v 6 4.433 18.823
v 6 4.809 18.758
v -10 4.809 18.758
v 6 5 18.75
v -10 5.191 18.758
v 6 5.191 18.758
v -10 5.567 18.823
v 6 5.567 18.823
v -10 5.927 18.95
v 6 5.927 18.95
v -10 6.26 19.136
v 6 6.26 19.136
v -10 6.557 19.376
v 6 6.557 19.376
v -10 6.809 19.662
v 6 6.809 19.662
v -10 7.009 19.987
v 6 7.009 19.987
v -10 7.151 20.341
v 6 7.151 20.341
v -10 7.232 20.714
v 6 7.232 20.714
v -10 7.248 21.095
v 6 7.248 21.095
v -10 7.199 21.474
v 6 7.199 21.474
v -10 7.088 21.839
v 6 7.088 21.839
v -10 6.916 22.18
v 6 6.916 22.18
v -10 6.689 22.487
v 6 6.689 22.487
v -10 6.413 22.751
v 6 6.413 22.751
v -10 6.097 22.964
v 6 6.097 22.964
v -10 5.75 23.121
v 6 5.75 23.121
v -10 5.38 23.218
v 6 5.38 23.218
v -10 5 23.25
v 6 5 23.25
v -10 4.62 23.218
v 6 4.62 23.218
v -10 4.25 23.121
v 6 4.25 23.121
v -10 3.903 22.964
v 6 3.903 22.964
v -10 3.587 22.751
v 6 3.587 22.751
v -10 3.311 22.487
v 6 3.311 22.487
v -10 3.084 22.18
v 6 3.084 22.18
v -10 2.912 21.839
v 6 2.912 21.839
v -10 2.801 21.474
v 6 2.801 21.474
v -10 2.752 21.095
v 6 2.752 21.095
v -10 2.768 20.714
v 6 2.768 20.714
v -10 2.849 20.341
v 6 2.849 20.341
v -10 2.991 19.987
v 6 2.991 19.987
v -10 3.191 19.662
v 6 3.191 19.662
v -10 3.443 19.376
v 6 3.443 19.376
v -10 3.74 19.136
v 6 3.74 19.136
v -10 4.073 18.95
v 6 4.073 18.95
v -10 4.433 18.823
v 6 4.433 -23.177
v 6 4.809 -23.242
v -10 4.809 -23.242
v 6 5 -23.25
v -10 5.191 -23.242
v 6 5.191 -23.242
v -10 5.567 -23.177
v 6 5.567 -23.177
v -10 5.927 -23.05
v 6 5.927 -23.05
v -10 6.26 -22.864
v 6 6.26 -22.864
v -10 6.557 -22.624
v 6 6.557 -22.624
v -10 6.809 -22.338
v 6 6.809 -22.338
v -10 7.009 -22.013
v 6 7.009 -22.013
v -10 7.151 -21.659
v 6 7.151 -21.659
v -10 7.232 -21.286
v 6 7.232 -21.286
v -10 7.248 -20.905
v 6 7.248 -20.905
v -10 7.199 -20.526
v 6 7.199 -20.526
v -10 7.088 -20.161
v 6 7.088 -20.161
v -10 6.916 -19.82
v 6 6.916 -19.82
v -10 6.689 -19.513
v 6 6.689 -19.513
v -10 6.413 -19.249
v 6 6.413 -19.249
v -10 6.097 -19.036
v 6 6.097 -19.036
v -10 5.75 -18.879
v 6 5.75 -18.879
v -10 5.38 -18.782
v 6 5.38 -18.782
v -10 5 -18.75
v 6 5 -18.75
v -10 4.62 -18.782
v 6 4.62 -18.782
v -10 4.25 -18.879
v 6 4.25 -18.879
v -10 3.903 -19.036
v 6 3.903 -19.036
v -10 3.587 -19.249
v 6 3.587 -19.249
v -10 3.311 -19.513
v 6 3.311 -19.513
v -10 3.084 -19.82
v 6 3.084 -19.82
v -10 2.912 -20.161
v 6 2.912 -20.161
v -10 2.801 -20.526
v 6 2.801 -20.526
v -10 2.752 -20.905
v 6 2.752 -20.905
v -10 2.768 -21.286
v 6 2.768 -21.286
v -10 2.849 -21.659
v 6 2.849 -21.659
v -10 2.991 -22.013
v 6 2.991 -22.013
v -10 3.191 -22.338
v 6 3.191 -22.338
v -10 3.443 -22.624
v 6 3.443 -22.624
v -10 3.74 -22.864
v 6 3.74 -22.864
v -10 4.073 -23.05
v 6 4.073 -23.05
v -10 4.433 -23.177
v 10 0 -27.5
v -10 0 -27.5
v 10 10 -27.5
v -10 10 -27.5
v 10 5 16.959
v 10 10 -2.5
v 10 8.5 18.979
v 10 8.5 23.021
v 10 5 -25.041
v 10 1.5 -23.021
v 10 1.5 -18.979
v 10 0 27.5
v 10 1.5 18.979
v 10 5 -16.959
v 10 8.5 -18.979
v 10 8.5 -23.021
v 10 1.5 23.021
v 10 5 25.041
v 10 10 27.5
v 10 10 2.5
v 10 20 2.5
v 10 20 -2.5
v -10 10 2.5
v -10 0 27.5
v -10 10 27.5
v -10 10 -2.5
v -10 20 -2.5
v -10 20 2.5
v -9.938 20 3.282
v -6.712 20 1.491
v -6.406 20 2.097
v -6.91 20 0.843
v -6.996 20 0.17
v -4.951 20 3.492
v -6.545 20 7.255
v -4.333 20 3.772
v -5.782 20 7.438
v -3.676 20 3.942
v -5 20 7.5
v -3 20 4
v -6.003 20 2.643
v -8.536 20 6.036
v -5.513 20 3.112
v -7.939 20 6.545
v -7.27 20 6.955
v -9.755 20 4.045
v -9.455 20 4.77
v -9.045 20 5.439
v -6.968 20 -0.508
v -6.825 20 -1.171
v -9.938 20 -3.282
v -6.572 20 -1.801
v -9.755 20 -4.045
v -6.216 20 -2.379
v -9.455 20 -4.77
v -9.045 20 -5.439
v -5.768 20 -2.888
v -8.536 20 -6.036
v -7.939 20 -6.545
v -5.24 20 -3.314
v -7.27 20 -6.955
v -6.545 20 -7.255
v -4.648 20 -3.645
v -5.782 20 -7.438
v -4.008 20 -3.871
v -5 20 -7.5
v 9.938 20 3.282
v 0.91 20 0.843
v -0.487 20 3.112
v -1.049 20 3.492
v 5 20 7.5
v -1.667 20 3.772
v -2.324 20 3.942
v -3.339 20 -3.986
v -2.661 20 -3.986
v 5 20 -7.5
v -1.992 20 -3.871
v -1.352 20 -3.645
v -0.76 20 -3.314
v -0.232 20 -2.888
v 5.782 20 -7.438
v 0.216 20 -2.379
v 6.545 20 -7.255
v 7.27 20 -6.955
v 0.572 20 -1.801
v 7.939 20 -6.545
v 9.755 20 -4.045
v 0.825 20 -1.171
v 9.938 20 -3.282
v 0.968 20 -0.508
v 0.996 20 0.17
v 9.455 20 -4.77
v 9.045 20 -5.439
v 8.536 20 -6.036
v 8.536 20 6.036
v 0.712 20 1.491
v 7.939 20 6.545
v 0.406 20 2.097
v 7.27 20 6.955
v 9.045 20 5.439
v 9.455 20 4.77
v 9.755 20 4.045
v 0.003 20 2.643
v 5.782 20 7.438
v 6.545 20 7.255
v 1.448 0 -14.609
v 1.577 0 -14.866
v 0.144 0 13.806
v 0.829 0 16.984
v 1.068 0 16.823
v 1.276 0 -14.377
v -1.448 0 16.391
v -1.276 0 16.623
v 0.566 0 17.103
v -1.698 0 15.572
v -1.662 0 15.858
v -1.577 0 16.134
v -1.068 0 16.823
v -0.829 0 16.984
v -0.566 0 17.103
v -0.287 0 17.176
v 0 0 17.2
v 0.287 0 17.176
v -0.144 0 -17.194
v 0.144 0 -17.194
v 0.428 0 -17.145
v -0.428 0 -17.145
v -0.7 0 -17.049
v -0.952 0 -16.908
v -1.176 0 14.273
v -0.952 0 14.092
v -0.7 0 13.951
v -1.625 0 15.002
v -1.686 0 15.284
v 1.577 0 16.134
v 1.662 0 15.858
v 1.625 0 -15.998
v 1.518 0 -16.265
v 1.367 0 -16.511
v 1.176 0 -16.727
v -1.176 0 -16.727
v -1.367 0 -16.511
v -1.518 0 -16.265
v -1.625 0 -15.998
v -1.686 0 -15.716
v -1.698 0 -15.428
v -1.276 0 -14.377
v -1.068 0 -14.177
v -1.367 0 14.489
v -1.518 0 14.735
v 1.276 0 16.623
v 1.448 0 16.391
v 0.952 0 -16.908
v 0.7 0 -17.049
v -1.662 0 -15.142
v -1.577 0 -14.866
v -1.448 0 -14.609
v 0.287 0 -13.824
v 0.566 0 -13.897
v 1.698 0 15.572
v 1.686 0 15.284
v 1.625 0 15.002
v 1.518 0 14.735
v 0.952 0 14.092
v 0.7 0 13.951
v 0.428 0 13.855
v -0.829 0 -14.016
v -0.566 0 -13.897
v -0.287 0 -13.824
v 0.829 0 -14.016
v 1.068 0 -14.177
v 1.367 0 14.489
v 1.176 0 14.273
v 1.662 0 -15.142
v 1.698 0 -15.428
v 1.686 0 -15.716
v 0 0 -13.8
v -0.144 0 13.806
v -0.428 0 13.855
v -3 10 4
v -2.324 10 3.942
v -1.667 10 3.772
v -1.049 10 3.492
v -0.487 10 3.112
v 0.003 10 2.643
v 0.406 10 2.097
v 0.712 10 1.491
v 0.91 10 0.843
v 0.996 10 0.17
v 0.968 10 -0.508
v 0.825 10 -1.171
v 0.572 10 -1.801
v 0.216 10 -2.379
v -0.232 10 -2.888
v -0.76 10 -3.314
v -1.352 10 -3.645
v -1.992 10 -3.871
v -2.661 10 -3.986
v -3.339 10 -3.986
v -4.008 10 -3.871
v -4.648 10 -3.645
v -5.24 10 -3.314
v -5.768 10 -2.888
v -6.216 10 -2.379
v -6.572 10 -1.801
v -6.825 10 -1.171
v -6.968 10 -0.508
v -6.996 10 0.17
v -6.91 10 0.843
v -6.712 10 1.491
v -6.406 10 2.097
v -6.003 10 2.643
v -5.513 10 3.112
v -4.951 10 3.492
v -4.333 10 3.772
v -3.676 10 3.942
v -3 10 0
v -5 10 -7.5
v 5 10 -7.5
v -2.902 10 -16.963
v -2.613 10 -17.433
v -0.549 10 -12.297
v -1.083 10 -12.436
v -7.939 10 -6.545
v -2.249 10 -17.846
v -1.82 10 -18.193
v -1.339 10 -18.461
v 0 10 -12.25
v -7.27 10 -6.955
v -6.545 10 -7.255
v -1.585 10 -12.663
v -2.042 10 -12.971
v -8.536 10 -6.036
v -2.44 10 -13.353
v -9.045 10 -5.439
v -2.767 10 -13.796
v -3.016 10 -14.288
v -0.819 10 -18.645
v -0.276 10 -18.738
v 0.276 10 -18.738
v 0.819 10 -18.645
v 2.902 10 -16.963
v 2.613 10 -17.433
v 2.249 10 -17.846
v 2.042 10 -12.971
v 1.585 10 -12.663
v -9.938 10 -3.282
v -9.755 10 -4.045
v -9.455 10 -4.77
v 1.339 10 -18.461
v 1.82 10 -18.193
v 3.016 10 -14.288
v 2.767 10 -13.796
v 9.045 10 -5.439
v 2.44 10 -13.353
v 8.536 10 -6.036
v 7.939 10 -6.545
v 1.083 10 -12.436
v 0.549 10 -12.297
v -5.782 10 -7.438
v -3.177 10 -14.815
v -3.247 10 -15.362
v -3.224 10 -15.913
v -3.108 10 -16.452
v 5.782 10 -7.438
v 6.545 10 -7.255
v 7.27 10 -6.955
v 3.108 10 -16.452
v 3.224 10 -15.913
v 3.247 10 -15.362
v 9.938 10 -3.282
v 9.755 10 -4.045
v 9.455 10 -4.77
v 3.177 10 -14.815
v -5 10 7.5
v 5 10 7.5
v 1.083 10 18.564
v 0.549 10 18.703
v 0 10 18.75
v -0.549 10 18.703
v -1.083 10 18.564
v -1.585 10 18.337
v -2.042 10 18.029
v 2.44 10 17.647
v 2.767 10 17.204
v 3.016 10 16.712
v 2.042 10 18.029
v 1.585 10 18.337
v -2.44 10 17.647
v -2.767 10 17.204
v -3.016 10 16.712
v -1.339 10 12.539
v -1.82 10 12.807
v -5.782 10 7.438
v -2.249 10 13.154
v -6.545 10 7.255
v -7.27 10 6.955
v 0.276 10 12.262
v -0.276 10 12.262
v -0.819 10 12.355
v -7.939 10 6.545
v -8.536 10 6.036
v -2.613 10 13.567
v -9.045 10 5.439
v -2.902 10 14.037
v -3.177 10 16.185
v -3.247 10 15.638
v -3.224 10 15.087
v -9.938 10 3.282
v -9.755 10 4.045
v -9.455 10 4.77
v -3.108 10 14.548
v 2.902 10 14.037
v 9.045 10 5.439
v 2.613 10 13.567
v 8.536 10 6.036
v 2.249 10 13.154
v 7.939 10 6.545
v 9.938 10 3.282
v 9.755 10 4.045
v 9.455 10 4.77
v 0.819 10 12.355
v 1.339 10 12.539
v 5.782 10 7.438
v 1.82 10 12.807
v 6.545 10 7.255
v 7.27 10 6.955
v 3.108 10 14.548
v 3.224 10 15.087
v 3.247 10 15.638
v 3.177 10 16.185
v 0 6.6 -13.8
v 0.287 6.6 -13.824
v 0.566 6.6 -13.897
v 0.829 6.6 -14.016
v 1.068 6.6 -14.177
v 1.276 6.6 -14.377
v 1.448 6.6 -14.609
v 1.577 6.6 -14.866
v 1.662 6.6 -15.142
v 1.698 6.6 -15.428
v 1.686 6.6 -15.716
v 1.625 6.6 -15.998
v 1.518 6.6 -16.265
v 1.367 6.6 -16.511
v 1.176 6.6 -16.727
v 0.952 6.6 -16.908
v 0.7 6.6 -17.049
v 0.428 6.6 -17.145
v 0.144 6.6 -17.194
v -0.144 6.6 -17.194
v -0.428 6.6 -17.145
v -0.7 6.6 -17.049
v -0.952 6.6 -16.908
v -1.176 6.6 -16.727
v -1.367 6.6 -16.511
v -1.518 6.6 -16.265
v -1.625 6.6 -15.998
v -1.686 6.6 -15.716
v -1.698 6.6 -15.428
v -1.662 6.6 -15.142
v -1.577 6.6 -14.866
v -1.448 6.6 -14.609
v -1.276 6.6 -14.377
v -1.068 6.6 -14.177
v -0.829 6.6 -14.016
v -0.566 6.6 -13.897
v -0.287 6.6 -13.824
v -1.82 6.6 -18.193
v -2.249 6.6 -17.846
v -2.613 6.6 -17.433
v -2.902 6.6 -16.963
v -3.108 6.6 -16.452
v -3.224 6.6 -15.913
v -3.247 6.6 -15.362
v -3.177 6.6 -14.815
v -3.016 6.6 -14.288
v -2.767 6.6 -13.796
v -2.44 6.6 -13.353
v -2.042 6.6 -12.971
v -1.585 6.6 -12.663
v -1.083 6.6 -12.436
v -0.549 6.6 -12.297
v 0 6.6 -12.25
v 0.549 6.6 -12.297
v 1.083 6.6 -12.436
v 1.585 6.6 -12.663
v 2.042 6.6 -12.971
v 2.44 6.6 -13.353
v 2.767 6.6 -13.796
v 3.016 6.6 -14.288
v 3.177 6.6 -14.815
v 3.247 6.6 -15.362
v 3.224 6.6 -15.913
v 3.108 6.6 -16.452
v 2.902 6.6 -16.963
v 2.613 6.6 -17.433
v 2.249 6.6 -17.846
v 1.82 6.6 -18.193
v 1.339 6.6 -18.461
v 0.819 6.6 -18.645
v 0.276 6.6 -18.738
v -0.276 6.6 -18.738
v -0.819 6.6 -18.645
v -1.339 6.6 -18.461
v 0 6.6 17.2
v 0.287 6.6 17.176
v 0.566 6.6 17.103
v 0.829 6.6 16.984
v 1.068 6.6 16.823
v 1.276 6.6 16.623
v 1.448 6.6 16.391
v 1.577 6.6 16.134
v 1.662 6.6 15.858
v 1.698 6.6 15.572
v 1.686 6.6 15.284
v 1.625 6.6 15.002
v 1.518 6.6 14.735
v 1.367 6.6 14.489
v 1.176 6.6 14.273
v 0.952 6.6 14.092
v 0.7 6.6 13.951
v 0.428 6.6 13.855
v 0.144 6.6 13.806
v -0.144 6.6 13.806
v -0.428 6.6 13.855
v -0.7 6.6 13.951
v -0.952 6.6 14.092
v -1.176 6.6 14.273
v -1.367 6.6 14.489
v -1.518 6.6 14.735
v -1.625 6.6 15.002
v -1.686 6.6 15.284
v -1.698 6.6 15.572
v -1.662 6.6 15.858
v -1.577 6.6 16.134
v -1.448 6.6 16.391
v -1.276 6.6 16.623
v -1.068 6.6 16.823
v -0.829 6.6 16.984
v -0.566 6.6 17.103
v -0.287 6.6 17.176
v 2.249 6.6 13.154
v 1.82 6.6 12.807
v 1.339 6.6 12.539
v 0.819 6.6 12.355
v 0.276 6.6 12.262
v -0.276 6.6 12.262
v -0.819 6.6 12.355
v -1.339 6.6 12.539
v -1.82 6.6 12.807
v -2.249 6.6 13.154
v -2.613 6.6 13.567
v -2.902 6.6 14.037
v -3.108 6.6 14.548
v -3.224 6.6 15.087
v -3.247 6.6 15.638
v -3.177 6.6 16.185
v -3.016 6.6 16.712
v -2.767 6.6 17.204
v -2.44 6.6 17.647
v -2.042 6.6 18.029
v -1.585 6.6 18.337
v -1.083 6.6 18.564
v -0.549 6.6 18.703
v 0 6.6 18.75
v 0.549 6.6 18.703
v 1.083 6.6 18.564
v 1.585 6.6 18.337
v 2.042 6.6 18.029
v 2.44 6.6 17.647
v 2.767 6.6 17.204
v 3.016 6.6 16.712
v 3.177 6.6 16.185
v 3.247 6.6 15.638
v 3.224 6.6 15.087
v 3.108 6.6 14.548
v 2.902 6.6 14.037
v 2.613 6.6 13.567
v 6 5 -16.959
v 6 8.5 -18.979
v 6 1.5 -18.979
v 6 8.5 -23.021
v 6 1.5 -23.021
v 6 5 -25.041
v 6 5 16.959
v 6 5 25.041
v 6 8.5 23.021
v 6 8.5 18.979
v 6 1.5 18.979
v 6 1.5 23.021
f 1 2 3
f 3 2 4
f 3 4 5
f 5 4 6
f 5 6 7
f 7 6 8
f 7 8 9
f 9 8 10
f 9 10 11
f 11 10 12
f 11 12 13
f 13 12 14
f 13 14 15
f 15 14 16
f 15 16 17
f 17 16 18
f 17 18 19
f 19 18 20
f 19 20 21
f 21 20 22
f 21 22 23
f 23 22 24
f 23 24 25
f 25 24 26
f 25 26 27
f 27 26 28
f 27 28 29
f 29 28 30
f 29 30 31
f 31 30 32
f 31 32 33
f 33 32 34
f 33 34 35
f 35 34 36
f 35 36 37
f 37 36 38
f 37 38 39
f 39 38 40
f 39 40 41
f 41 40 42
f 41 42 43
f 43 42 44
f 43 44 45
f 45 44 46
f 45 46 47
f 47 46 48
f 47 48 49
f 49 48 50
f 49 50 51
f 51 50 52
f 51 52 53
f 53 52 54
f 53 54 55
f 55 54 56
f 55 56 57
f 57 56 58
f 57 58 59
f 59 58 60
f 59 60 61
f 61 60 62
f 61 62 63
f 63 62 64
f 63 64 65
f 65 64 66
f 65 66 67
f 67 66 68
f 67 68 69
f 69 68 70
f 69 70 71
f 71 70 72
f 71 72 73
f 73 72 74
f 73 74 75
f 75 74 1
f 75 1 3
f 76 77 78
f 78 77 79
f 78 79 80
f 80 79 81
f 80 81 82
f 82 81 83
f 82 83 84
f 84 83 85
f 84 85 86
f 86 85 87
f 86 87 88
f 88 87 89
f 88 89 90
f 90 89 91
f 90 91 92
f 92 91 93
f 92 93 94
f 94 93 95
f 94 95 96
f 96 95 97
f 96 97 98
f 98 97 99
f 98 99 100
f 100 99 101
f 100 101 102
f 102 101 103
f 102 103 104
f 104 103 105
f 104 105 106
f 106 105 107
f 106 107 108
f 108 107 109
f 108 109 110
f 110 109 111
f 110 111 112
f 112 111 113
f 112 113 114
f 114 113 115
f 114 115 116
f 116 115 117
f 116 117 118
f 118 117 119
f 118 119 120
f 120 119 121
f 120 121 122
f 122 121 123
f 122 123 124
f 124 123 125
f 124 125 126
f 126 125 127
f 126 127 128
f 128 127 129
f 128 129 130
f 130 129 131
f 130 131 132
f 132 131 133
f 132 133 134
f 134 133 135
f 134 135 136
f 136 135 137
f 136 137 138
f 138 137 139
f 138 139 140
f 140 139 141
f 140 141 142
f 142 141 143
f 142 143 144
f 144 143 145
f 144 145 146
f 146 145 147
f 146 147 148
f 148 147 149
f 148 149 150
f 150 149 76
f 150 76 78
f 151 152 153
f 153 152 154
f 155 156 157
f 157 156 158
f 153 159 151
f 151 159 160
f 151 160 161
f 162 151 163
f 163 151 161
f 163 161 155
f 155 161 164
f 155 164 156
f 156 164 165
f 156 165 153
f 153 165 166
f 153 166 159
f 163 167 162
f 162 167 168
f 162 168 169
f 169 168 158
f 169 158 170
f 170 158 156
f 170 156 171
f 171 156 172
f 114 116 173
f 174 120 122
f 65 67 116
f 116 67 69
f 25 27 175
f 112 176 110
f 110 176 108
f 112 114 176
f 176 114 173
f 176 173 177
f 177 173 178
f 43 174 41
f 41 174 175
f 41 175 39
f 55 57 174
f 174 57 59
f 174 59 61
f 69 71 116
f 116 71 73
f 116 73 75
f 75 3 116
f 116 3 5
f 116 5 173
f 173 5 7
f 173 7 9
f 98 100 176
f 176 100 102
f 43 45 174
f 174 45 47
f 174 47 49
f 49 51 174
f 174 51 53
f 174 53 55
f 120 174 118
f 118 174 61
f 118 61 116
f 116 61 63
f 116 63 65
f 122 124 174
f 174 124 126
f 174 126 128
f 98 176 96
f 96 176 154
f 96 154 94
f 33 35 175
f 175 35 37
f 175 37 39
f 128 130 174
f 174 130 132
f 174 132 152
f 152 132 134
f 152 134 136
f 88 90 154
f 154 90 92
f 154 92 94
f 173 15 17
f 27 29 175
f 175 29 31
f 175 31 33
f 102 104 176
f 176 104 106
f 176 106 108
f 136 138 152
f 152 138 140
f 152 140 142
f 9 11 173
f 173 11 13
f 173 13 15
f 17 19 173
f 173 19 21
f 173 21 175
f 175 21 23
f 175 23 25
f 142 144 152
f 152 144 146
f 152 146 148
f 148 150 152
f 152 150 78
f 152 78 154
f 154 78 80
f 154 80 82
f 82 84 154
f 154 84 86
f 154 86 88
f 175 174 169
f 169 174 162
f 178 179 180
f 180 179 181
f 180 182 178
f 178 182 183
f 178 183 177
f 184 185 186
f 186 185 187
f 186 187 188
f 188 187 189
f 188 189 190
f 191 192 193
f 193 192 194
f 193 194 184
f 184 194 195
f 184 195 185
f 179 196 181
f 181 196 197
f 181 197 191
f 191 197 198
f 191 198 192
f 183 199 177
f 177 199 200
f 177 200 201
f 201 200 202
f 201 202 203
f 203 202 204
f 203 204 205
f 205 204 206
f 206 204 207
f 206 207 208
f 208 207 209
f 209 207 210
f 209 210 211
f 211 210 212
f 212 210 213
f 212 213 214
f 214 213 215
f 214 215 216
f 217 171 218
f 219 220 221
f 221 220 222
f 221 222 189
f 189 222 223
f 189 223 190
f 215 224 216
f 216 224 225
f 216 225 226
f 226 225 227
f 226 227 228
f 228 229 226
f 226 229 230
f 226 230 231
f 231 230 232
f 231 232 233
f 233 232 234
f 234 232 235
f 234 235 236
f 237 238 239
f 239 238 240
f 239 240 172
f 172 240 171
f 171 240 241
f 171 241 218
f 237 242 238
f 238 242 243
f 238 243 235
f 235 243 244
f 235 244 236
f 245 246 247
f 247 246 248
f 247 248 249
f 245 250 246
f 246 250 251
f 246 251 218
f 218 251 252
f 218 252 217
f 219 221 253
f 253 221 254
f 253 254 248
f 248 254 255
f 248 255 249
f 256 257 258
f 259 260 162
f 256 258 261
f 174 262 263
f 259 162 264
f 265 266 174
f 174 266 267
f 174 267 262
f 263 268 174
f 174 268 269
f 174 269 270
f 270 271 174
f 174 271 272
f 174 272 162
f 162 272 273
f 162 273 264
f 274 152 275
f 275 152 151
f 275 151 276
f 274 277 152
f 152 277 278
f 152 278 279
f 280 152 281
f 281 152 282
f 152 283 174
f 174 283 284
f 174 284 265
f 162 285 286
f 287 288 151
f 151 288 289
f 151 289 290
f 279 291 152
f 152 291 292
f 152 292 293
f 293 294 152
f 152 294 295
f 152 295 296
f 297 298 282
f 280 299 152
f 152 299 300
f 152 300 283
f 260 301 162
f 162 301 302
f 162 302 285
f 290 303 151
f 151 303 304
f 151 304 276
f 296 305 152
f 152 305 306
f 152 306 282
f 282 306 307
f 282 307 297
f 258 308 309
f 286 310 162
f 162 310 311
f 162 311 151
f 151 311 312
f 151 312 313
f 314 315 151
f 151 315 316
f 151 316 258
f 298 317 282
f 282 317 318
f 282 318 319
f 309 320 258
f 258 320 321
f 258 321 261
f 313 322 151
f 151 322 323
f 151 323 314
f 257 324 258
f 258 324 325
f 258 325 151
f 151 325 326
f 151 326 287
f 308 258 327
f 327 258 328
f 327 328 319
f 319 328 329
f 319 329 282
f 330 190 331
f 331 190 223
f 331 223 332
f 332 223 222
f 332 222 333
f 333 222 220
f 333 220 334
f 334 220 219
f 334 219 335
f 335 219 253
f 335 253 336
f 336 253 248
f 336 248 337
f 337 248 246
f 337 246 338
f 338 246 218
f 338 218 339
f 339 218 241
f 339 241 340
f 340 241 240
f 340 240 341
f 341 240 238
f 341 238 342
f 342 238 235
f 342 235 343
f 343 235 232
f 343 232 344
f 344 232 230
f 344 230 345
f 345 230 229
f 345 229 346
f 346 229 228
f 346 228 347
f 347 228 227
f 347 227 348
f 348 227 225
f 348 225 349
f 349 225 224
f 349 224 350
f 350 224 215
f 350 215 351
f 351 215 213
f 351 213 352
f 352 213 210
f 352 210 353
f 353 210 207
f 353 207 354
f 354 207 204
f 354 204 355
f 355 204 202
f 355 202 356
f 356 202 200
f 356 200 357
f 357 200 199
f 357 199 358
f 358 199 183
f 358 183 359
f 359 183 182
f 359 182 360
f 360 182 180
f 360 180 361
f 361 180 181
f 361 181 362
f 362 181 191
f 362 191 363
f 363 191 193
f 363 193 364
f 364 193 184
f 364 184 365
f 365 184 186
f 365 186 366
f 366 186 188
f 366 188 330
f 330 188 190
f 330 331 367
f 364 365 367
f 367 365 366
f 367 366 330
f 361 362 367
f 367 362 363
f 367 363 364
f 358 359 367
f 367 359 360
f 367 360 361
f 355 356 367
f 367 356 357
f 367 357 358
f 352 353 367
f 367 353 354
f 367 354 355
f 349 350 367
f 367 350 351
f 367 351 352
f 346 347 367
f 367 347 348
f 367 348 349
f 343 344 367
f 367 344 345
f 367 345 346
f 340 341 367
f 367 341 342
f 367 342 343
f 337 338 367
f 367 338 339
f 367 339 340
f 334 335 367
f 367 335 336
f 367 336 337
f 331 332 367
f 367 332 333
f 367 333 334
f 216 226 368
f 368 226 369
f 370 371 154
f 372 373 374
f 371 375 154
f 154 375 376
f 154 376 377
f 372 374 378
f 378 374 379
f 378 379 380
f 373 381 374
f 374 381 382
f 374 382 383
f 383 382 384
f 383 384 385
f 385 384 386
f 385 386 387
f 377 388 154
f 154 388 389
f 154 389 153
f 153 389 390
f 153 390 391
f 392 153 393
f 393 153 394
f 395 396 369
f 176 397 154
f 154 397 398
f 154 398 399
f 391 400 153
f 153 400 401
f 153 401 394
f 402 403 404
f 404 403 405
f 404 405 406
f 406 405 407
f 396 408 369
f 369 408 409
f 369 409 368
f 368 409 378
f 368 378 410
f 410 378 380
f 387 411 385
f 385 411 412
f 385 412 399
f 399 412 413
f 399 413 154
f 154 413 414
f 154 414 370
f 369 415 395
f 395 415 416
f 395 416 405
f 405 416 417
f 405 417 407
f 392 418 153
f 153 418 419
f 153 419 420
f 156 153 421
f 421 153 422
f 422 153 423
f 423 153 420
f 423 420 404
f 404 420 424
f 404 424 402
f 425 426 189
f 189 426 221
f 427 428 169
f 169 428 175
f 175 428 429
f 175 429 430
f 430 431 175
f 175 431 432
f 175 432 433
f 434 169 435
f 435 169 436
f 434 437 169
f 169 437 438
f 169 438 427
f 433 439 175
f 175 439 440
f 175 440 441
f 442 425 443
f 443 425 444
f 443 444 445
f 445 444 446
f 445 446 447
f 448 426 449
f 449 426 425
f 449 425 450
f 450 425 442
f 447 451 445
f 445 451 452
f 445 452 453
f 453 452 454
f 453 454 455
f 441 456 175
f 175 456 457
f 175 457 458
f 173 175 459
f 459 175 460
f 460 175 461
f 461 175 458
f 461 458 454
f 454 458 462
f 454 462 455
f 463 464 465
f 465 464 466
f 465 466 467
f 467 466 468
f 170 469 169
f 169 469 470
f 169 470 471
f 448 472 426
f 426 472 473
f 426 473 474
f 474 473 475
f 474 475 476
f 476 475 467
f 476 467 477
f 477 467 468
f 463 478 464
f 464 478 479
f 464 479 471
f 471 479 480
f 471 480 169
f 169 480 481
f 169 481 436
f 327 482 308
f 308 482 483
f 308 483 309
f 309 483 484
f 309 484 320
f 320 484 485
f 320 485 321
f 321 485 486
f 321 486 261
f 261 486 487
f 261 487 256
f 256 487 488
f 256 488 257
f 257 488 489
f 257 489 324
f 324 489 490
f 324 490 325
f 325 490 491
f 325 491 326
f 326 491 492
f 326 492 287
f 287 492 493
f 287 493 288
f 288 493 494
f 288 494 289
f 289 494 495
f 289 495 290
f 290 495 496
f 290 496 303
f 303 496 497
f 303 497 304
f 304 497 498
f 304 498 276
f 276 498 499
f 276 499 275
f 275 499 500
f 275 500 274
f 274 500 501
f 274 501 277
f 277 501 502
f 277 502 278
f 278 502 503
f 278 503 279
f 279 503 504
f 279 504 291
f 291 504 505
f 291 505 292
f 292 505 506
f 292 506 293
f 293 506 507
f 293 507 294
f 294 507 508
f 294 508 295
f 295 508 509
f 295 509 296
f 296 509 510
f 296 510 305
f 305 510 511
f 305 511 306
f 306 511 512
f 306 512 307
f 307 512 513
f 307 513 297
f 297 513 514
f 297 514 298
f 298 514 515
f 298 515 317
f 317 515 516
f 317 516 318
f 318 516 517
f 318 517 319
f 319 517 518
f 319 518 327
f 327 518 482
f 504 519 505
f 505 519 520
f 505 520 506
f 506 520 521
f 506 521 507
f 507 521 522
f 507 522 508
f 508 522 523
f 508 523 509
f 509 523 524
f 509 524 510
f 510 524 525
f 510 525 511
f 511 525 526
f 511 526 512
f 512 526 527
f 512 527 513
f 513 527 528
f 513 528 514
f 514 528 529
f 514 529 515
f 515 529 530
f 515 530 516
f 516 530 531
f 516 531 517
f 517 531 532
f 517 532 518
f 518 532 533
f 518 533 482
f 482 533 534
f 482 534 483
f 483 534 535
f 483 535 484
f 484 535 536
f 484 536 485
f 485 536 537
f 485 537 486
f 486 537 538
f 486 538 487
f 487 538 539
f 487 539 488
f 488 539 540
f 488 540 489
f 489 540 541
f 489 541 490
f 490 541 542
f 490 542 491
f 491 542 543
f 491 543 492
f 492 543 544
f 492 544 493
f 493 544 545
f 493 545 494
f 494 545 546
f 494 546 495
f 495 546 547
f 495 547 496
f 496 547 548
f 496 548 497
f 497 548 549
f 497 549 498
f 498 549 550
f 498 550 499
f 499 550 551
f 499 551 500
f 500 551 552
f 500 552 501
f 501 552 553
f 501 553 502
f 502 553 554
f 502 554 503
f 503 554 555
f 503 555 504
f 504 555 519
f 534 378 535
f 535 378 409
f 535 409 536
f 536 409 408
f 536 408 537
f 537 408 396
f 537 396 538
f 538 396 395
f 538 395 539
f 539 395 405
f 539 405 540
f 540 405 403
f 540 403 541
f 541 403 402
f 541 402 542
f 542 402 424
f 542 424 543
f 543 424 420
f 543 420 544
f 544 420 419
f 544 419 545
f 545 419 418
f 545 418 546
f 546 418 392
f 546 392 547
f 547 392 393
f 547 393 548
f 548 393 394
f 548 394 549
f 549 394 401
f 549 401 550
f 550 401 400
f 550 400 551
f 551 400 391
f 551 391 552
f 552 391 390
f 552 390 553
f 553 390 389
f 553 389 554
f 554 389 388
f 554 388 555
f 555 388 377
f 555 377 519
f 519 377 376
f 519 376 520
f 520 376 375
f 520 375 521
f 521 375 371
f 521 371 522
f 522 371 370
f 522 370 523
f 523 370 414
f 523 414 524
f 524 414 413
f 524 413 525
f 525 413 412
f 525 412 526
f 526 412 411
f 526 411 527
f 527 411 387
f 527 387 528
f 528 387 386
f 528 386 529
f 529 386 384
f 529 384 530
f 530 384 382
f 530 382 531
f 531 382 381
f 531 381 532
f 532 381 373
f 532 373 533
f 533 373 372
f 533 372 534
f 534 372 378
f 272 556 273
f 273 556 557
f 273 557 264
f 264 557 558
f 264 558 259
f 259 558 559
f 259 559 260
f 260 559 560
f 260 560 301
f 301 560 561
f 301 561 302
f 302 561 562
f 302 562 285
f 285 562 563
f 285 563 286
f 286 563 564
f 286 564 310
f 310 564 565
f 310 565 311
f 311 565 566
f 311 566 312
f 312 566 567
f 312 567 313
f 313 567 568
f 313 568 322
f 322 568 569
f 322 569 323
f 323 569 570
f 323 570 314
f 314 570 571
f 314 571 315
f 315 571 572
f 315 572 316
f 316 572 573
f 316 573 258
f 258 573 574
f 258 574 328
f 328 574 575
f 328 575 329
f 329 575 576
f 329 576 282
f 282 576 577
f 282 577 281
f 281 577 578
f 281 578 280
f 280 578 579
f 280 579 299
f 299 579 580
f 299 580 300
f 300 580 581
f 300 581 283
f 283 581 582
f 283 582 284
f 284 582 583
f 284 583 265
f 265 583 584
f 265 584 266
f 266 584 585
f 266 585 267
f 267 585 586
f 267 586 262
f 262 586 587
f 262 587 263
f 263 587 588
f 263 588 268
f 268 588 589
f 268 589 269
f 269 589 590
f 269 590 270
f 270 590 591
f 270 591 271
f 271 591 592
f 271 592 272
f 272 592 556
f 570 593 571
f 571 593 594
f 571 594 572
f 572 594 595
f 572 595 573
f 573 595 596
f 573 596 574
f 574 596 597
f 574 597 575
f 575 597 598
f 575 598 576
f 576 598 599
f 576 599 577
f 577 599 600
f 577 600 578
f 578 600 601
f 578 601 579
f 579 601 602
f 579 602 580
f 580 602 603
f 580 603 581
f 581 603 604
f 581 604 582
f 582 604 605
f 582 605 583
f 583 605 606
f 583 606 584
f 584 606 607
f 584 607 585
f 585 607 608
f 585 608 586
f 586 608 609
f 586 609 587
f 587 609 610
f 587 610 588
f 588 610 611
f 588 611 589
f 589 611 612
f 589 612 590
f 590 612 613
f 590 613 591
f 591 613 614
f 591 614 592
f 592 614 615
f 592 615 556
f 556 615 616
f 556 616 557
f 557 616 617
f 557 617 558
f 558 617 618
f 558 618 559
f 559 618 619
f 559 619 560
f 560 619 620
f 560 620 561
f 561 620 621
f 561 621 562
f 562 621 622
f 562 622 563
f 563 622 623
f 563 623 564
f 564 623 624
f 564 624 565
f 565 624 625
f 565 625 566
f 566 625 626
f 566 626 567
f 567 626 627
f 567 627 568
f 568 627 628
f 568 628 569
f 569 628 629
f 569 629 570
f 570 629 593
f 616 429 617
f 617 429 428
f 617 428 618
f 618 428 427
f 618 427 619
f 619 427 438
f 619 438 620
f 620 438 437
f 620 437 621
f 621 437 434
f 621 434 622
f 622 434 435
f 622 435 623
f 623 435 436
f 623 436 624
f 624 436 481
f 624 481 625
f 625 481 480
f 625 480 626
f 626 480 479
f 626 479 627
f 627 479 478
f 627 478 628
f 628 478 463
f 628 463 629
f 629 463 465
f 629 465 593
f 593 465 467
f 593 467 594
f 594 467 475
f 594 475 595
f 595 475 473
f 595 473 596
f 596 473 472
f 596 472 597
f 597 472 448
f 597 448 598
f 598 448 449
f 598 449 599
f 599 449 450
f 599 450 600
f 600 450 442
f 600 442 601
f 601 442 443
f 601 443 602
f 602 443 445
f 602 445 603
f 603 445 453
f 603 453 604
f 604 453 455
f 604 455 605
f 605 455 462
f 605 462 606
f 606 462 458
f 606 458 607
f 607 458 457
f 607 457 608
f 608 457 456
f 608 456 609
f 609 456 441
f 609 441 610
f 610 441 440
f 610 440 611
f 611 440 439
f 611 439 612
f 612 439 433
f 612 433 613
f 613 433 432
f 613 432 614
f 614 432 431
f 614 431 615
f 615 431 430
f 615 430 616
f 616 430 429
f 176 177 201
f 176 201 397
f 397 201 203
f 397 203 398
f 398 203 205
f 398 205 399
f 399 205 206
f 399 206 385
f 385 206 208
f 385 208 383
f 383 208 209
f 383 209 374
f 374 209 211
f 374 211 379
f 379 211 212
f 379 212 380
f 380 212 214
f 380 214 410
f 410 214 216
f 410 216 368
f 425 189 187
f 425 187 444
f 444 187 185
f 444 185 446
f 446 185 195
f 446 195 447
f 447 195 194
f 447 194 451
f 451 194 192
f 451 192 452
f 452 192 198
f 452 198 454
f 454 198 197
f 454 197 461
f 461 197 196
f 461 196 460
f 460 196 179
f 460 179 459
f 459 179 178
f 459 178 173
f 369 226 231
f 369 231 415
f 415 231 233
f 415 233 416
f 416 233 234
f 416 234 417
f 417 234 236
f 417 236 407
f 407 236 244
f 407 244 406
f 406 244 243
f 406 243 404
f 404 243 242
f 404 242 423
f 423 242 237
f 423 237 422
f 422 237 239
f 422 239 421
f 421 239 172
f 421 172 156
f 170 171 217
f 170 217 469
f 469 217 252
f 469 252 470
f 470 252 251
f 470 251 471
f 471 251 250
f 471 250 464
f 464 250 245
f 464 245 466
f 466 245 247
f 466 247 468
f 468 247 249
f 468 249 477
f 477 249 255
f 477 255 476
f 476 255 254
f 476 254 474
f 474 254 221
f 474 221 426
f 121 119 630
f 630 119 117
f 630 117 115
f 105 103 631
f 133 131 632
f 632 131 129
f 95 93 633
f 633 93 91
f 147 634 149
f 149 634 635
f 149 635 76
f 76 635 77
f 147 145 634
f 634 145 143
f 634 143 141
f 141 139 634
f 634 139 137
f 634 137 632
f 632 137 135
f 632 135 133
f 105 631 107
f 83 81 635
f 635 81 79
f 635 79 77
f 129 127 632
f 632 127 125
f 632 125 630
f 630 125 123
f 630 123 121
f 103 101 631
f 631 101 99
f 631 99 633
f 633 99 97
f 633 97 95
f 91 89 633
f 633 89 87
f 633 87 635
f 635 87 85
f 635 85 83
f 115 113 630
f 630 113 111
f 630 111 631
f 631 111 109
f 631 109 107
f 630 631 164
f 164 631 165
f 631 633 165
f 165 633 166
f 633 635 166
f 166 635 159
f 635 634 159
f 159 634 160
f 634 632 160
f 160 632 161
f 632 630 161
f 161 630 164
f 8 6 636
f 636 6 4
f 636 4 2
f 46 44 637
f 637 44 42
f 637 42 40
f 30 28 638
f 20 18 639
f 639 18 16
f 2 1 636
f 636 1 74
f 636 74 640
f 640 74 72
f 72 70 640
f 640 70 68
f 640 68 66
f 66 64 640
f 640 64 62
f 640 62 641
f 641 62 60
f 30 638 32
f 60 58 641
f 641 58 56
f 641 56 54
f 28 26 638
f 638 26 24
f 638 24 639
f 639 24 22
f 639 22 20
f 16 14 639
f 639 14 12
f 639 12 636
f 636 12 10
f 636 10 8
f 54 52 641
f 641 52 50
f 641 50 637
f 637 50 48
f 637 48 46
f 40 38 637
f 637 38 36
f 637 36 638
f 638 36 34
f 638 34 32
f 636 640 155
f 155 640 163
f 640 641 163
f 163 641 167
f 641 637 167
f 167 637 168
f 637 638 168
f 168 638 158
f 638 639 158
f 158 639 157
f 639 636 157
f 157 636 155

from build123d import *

# Parameters (mm, degrees)
SKETCH1_W                                           = 20
SKETCH1_H                                           = 55
BOSS_EXTRUDE1_DEPTH                                 = 20
SKETCH2_R                                           = 4
CUT_EXTRUDE1_DEPTH                                  = 10
SKETCH3_W                                           = 20
SKETCH3_H                                           = 20
CUT_EXTRUDE2_DEPTH                                  = 10
CBORE_FOR_M3_HEX_SOCKET_HEAD_CAP_SCREW1_D           = 3.4
CBORE_FOR_M3_HEX_SOCKET_HEAD_CAP_SCREW1_CBORE_D     = 6.5
CBORE_FOR_M3_HEX_SOCKET_HEAD_CAP_SCREW1_CBORE_DEPTH = 3.4
FILLET2_R                                           = 5
SKETCH9_R                                           = 2.25
CUT_EXTRUDE5_DEPTH                                  = 40.449334595
CUT_EXTRUDE6_DEPTH                                  = 4


with BuildPart() as part:
    # Sketch1 → Boss-Extrude1 (new body)
    with BuildSketch(Plane(origin=(0, 0, 0), x_dir=(1, 0, 0), z_dir=(0, 1, 0))):
        Rectangle(SKETCH1_W, SKETCH1_H)
    extrude(amount=BOSS_EXTRUDE1_DEPTH)

    # Sketch2 → Cut-Extrude1 (cut)
    with BuildSketch(Plane(origin=(0, 20, 0), x_dir=(1, 0, 0), z_dir=(0, 1, 0))):
        with Locations(Location((-3, 0, 0), (0, 0, 270))):
            Circle(SKETCH2_R)
    extrude(amount=-CUT_EXTRUDE1_DEPTH, mode=Mode.SUBTRACT)

    # Sketch3 → Cut-Extrude2 (cut)
    with BuildSketch(Plane(origin=(0, 20, 0), x_dir=(1, 0, 0), z_dir=(0, 1, 0))):
        with Locations((0, -17.5)):
            Rectangle(SKETCH3_W, SKETCH3_H)
        with Locations((0, 17.5)):
            Rectangle(SKETCH3_W, SKETCH3_H)
    extrude(amount=-CUT_EXTRUDE2_DEPTH, mode=Mode.SUBTRACT)

    # CBORE for M3 Hex Socket Head Cap Screw1 (through all)
    with Locations(Plane(origin=(0, 10, 0), x_dir=(1, 0, 0), z_dir=(0, 1, 0))):
        with Locations((0, -15.5), (0, 15.5)):
            CounterBoreHole(CBORE_FOR_M3_HEX_SOCKET_HEAD_CAP_SCREW1_D / 2, CBORE_FOR_M3_HEX_SOCKET_HEAD_CAP_SCREW1_CBORE_D / 2, CBORE_FOR_M3_HEX_SOCKET_HEAD_CAP_SCREW1_CBORE_DEPTH)

    # Fillet2
    fillet2_edges = [part.edges().sort_by_distance(p)[0] for p in [
        (-10, 15, 7.5),
        (10, 15, 7.5),
        (-10, 15, -7.5),
        (10, 15, -7.5),
    ]]
    fillet(fillet2_edges, radius=FILLET2_R)

    # Sketch9 → Cut-Extrude5 (cut, through all)
    with BuildSketch(Plane.ZY.offset(10)):
        with Locations((-21, 5)):
            Circle(SKETCH9_R)
        with Locations((21, 5)):
            Circle(SKETCH9_R)
    extrude(amount=-CUT_EXTRUDE5_DEPTH, mode=Mode.SUBTRACT)

    # Sketch10 → Cut-Extrude6 (cut)
    with BuildSketch(Plane(origin=(10, 0, 0), x_dir=(0, 0, -1), z_dir=(1, 0, 0))):
        Polygon((-16.958548116, 5), (-18.979274058, 8.5), (-23.020725942, 8.5), (-25.041451884, 5), (-23.020725942, 1.5), (-18.979274058, 1.5), align=None)
        Polygon((16.958548116, 5), (18.979274058, 1.5), (23.020725942, 1.5), (25.041451884, 5), (23.020725942, 8.5), (18.979274058, 8.5), align=None)
    extrude(amount=-CUT_EXTRUDE6_DEPTH, mode=Mode.SUBTRACT)


solid = part.part
